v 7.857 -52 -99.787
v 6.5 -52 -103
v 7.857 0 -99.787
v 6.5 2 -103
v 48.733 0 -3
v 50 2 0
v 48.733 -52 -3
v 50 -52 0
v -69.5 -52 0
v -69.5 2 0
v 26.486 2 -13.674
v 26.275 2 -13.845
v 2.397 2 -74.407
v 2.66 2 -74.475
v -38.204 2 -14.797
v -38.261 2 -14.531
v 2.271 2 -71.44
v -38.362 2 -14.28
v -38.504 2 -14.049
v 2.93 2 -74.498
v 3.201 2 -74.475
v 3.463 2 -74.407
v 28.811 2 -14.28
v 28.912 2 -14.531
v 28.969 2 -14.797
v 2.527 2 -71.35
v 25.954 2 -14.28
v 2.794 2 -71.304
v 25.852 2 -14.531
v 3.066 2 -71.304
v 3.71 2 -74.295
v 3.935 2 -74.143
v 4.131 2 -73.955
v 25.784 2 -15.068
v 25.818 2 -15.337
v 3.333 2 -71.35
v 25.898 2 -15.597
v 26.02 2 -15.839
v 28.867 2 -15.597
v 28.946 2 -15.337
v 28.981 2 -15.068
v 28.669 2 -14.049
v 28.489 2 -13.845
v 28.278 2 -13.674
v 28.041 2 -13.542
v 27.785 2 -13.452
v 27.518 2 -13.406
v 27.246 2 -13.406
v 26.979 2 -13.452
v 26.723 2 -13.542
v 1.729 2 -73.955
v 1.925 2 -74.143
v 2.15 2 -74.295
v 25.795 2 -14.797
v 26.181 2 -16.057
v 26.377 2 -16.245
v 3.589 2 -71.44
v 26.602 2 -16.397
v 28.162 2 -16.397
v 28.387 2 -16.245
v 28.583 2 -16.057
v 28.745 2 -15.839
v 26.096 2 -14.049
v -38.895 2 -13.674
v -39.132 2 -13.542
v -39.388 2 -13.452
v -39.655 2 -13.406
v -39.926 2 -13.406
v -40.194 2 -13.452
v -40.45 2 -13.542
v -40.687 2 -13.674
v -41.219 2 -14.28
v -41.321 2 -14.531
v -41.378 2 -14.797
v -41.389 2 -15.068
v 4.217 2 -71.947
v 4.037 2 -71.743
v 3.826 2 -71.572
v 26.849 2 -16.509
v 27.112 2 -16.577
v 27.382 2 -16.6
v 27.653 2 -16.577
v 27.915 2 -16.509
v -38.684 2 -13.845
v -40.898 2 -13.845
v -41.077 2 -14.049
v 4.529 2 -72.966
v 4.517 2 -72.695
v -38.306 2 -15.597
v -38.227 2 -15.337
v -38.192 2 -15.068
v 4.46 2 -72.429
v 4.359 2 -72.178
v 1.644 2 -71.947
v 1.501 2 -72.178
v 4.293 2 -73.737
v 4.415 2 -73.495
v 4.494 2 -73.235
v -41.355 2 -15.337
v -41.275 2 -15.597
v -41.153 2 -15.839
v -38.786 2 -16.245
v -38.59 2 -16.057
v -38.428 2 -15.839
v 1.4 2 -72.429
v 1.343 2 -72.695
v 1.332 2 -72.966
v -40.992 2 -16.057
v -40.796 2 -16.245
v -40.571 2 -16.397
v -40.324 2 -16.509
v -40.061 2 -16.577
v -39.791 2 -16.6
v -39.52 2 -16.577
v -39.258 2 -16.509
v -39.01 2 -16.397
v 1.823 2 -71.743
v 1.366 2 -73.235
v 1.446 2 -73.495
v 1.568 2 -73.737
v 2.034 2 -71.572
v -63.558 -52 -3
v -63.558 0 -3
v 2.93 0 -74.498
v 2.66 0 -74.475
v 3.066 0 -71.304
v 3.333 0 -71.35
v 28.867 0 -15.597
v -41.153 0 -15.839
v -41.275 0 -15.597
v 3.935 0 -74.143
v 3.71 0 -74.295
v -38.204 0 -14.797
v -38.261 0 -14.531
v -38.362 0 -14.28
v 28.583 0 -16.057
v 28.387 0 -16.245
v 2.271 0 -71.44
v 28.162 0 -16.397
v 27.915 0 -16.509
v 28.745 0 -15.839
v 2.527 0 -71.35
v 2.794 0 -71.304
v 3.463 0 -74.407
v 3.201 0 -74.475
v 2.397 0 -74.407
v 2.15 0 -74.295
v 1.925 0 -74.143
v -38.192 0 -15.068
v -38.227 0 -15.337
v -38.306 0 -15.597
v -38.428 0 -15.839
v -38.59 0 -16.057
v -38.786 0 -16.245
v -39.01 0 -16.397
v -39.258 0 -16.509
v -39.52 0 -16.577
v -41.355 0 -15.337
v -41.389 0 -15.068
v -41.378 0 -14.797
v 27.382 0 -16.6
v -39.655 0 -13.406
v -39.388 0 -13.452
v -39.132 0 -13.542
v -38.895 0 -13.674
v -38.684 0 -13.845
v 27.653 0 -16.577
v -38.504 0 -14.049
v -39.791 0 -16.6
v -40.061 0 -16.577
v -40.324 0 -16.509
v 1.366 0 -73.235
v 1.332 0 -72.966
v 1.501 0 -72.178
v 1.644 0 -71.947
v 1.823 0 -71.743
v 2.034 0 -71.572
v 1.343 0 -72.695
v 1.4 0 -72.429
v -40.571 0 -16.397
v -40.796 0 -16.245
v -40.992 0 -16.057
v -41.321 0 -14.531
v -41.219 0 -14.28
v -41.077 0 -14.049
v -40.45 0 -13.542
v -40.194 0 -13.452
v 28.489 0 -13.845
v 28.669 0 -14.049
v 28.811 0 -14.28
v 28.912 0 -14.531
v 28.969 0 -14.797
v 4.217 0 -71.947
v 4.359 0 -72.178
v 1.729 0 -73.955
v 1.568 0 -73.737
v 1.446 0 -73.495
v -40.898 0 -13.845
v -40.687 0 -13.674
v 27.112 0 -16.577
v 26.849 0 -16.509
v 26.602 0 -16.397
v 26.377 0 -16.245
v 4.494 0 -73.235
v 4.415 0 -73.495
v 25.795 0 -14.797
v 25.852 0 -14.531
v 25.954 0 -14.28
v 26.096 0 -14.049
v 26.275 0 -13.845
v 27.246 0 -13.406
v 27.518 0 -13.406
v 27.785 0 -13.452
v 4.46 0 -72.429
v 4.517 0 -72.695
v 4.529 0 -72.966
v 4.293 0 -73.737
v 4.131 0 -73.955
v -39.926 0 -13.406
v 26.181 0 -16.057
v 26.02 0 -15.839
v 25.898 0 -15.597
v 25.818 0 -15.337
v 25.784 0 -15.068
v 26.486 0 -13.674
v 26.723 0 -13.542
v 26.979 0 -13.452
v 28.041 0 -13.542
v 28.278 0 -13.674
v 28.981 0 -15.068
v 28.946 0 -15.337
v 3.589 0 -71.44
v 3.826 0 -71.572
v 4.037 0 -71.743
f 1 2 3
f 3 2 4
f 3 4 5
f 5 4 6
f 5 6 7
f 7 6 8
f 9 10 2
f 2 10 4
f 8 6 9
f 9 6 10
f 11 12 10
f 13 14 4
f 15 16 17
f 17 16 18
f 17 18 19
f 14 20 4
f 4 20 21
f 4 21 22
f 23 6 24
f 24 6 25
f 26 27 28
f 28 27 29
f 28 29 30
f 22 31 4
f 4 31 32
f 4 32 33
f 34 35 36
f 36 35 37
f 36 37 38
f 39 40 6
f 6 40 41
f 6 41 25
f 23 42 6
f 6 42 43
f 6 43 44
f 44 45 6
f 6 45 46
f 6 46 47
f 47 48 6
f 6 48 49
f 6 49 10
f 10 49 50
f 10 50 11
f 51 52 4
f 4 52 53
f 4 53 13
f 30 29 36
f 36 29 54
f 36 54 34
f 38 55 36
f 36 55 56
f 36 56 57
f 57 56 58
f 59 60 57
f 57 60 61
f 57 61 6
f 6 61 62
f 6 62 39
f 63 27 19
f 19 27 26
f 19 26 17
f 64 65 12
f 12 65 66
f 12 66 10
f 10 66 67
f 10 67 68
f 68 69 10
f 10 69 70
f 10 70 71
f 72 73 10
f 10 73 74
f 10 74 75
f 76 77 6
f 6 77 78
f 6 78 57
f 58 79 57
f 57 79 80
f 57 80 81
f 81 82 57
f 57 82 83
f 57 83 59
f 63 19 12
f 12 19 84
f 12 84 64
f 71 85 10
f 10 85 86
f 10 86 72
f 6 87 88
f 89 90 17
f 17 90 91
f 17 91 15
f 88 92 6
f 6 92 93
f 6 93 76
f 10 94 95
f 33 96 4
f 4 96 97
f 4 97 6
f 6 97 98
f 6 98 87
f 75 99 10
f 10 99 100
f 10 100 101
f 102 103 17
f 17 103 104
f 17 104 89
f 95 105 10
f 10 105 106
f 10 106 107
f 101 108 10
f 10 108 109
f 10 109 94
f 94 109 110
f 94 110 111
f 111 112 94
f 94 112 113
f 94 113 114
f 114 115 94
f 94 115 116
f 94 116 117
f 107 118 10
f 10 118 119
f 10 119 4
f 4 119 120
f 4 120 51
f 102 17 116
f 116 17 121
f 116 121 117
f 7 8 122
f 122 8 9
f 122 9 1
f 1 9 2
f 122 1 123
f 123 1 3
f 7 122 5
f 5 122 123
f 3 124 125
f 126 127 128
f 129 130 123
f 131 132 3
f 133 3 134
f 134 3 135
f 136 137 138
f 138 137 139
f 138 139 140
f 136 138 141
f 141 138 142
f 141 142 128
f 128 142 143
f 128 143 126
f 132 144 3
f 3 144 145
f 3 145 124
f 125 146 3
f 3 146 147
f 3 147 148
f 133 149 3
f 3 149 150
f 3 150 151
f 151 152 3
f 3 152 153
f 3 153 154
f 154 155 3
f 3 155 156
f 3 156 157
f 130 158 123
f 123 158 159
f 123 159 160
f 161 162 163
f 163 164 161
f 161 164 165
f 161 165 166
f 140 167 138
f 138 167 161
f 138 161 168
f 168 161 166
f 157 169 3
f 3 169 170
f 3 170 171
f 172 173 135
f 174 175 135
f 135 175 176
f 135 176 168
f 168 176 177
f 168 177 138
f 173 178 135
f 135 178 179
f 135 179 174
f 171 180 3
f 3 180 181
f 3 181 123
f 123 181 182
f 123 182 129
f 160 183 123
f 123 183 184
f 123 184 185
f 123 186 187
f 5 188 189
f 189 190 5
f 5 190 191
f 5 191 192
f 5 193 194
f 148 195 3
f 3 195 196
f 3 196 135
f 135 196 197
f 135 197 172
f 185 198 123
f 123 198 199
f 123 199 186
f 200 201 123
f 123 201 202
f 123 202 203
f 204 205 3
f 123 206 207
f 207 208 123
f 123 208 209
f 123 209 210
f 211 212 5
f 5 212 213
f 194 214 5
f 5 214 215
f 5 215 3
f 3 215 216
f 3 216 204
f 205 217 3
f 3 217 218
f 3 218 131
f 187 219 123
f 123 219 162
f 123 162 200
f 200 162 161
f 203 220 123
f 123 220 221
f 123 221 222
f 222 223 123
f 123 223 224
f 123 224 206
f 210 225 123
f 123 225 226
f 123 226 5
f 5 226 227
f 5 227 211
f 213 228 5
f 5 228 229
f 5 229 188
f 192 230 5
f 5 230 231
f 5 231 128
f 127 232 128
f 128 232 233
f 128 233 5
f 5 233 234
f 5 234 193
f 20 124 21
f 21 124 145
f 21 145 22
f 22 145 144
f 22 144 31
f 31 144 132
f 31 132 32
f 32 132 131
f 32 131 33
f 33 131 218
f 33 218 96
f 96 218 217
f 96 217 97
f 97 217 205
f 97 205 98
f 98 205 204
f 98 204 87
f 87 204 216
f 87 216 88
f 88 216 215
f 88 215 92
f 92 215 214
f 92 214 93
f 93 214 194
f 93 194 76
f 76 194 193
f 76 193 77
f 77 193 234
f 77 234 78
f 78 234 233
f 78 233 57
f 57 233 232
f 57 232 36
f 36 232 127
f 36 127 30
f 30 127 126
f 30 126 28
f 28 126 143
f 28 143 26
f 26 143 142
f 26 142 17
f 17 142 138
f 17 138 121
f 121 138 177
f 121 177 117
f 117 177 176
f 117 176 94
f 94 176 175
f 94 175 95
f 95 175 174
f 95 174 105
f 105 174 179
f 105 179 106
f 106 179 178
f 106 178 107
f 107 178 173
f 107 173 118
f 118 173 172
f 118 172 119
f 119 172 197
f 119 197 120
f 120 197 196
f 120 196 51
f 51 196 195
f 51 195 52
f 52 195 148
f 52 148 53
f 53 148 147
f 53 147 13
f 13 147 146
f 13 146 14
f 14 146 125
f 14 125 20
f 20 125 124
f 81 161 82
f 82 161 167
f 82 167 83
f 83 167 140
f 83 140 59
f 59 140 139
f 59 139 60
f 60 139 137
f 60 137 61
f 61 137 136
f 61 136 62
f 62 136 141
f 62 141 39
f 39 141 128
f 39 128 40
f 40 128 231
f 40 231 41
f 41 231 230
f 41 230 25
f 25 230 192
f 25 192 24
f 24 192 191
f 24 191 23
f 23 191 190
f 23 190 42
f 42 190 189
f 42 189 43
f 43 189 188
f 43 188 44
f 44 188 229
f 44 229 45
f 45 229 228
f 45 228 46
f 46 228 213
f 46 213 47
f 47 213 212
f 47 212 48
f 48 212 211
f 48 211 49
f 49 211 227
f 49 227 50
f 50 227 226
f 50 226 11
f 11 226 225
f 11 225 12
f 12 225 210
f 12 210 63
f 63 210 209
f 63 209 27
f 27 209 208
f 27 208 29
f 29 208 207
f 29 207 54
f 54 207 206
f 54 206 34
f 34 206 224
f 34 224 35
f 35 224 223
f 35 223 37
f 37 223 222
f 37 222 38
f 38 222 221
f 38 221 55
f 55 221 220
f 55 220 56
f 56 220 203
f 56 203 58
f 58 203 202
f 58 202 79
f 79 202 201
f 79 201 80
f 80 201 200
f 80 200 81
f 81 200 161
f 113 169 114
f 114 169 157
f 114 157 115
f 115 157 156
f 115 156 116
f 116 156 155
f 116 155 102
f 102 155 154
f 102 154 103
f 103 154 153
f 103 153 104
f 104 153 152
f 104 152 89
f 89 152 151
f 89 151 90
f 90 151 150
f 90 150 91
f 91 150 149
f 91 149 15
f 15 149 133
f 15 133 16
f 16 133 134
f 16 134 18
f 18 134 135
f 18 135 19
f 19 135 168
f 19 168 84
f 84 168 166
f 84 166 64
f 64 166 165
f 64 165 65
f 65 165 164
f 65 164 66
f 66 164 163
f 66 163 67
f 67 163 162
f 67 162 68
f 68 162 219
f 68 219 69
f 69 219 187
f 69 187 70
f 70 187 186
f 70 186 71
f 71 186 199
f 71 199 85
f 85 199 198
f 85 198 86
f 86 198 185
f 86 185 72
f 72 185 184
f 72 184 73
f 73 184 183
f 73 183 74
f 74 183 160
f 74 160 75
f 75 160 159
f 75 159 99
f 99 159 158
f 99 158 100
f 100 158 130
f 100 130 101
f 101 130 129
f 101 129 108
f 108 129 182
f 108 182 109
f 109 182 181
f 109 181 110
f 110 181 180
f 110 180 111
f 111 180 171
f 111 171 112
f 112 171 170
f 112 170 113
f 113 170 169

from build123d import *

# Parameters (mm, degrees)
BOSS_EXTRUDE1_DEPTH = 2
BOSS_EXTRUDE2_DEPTH = 52
SKETCH4_R           = 1.6
CUT_EXTRUDE3_DEPTH  = 52
CUT_EXTRUDE4_DEPTH  = 52


with BuildPart() as part:
    # Sketch1 → Boss-Extrude1 (new body)
    with BuildSketch(Plane(origin=(0, 0, 0), x_dir=(1, 0, 0), z_dir=(0, 1, 0))):
        Polygon((0, 0), (-69.5, 0), (6.5, 103), (50, 0), (40, 0), align=None)
    extrude(amount=BOSS_EXTRUDE1_DEPTH)

    # Sketch2 → Boss-Extrude2 (add)
    with BuildSketch(Plane.XZ):
        Polygon((50, 0), (-69.5, 0), (6.5, -103), align=None)
        Polygon((5.786026753, -96.979592592), (45.476437216, -3), (-63.558138655, -3), align=None, mode=Mode.SUBTRACT)
    extrude(amount=BOSS_EXTRUDE2_DEPTH)

    # Sketch4 → Cut-Extrude3 (cut)
    with BuildSketch(Plane.XZ):
        with Locations((-39.790693273, -15)):
            Circle(SKETCH4_R)
        with Locations((27.382186082, -15)):
            Circle(SKETCH4_R)
        with Locations((2.930133764, -72.897962959)):
            Circle(SKETCH4_R)
    extrude(amount=-CUT_EXTRUDE3_DEPTH, mode=Mode.SUBTRACT)

    # Sketch6 → Cut-Extrude4 (cut)
    with BuildSketch(Plane.XZ.offset(52)):
        Polygon((5.786026753, -96.979592592), (13.566318251, -107.523935016), (48.733009709, -3), (45.476437216, -3), align=None)
    extrude(amount=-CUT_EXTRUDE4_DEPTH, mode=Mode.SUBTRACT)


solid = part.part
